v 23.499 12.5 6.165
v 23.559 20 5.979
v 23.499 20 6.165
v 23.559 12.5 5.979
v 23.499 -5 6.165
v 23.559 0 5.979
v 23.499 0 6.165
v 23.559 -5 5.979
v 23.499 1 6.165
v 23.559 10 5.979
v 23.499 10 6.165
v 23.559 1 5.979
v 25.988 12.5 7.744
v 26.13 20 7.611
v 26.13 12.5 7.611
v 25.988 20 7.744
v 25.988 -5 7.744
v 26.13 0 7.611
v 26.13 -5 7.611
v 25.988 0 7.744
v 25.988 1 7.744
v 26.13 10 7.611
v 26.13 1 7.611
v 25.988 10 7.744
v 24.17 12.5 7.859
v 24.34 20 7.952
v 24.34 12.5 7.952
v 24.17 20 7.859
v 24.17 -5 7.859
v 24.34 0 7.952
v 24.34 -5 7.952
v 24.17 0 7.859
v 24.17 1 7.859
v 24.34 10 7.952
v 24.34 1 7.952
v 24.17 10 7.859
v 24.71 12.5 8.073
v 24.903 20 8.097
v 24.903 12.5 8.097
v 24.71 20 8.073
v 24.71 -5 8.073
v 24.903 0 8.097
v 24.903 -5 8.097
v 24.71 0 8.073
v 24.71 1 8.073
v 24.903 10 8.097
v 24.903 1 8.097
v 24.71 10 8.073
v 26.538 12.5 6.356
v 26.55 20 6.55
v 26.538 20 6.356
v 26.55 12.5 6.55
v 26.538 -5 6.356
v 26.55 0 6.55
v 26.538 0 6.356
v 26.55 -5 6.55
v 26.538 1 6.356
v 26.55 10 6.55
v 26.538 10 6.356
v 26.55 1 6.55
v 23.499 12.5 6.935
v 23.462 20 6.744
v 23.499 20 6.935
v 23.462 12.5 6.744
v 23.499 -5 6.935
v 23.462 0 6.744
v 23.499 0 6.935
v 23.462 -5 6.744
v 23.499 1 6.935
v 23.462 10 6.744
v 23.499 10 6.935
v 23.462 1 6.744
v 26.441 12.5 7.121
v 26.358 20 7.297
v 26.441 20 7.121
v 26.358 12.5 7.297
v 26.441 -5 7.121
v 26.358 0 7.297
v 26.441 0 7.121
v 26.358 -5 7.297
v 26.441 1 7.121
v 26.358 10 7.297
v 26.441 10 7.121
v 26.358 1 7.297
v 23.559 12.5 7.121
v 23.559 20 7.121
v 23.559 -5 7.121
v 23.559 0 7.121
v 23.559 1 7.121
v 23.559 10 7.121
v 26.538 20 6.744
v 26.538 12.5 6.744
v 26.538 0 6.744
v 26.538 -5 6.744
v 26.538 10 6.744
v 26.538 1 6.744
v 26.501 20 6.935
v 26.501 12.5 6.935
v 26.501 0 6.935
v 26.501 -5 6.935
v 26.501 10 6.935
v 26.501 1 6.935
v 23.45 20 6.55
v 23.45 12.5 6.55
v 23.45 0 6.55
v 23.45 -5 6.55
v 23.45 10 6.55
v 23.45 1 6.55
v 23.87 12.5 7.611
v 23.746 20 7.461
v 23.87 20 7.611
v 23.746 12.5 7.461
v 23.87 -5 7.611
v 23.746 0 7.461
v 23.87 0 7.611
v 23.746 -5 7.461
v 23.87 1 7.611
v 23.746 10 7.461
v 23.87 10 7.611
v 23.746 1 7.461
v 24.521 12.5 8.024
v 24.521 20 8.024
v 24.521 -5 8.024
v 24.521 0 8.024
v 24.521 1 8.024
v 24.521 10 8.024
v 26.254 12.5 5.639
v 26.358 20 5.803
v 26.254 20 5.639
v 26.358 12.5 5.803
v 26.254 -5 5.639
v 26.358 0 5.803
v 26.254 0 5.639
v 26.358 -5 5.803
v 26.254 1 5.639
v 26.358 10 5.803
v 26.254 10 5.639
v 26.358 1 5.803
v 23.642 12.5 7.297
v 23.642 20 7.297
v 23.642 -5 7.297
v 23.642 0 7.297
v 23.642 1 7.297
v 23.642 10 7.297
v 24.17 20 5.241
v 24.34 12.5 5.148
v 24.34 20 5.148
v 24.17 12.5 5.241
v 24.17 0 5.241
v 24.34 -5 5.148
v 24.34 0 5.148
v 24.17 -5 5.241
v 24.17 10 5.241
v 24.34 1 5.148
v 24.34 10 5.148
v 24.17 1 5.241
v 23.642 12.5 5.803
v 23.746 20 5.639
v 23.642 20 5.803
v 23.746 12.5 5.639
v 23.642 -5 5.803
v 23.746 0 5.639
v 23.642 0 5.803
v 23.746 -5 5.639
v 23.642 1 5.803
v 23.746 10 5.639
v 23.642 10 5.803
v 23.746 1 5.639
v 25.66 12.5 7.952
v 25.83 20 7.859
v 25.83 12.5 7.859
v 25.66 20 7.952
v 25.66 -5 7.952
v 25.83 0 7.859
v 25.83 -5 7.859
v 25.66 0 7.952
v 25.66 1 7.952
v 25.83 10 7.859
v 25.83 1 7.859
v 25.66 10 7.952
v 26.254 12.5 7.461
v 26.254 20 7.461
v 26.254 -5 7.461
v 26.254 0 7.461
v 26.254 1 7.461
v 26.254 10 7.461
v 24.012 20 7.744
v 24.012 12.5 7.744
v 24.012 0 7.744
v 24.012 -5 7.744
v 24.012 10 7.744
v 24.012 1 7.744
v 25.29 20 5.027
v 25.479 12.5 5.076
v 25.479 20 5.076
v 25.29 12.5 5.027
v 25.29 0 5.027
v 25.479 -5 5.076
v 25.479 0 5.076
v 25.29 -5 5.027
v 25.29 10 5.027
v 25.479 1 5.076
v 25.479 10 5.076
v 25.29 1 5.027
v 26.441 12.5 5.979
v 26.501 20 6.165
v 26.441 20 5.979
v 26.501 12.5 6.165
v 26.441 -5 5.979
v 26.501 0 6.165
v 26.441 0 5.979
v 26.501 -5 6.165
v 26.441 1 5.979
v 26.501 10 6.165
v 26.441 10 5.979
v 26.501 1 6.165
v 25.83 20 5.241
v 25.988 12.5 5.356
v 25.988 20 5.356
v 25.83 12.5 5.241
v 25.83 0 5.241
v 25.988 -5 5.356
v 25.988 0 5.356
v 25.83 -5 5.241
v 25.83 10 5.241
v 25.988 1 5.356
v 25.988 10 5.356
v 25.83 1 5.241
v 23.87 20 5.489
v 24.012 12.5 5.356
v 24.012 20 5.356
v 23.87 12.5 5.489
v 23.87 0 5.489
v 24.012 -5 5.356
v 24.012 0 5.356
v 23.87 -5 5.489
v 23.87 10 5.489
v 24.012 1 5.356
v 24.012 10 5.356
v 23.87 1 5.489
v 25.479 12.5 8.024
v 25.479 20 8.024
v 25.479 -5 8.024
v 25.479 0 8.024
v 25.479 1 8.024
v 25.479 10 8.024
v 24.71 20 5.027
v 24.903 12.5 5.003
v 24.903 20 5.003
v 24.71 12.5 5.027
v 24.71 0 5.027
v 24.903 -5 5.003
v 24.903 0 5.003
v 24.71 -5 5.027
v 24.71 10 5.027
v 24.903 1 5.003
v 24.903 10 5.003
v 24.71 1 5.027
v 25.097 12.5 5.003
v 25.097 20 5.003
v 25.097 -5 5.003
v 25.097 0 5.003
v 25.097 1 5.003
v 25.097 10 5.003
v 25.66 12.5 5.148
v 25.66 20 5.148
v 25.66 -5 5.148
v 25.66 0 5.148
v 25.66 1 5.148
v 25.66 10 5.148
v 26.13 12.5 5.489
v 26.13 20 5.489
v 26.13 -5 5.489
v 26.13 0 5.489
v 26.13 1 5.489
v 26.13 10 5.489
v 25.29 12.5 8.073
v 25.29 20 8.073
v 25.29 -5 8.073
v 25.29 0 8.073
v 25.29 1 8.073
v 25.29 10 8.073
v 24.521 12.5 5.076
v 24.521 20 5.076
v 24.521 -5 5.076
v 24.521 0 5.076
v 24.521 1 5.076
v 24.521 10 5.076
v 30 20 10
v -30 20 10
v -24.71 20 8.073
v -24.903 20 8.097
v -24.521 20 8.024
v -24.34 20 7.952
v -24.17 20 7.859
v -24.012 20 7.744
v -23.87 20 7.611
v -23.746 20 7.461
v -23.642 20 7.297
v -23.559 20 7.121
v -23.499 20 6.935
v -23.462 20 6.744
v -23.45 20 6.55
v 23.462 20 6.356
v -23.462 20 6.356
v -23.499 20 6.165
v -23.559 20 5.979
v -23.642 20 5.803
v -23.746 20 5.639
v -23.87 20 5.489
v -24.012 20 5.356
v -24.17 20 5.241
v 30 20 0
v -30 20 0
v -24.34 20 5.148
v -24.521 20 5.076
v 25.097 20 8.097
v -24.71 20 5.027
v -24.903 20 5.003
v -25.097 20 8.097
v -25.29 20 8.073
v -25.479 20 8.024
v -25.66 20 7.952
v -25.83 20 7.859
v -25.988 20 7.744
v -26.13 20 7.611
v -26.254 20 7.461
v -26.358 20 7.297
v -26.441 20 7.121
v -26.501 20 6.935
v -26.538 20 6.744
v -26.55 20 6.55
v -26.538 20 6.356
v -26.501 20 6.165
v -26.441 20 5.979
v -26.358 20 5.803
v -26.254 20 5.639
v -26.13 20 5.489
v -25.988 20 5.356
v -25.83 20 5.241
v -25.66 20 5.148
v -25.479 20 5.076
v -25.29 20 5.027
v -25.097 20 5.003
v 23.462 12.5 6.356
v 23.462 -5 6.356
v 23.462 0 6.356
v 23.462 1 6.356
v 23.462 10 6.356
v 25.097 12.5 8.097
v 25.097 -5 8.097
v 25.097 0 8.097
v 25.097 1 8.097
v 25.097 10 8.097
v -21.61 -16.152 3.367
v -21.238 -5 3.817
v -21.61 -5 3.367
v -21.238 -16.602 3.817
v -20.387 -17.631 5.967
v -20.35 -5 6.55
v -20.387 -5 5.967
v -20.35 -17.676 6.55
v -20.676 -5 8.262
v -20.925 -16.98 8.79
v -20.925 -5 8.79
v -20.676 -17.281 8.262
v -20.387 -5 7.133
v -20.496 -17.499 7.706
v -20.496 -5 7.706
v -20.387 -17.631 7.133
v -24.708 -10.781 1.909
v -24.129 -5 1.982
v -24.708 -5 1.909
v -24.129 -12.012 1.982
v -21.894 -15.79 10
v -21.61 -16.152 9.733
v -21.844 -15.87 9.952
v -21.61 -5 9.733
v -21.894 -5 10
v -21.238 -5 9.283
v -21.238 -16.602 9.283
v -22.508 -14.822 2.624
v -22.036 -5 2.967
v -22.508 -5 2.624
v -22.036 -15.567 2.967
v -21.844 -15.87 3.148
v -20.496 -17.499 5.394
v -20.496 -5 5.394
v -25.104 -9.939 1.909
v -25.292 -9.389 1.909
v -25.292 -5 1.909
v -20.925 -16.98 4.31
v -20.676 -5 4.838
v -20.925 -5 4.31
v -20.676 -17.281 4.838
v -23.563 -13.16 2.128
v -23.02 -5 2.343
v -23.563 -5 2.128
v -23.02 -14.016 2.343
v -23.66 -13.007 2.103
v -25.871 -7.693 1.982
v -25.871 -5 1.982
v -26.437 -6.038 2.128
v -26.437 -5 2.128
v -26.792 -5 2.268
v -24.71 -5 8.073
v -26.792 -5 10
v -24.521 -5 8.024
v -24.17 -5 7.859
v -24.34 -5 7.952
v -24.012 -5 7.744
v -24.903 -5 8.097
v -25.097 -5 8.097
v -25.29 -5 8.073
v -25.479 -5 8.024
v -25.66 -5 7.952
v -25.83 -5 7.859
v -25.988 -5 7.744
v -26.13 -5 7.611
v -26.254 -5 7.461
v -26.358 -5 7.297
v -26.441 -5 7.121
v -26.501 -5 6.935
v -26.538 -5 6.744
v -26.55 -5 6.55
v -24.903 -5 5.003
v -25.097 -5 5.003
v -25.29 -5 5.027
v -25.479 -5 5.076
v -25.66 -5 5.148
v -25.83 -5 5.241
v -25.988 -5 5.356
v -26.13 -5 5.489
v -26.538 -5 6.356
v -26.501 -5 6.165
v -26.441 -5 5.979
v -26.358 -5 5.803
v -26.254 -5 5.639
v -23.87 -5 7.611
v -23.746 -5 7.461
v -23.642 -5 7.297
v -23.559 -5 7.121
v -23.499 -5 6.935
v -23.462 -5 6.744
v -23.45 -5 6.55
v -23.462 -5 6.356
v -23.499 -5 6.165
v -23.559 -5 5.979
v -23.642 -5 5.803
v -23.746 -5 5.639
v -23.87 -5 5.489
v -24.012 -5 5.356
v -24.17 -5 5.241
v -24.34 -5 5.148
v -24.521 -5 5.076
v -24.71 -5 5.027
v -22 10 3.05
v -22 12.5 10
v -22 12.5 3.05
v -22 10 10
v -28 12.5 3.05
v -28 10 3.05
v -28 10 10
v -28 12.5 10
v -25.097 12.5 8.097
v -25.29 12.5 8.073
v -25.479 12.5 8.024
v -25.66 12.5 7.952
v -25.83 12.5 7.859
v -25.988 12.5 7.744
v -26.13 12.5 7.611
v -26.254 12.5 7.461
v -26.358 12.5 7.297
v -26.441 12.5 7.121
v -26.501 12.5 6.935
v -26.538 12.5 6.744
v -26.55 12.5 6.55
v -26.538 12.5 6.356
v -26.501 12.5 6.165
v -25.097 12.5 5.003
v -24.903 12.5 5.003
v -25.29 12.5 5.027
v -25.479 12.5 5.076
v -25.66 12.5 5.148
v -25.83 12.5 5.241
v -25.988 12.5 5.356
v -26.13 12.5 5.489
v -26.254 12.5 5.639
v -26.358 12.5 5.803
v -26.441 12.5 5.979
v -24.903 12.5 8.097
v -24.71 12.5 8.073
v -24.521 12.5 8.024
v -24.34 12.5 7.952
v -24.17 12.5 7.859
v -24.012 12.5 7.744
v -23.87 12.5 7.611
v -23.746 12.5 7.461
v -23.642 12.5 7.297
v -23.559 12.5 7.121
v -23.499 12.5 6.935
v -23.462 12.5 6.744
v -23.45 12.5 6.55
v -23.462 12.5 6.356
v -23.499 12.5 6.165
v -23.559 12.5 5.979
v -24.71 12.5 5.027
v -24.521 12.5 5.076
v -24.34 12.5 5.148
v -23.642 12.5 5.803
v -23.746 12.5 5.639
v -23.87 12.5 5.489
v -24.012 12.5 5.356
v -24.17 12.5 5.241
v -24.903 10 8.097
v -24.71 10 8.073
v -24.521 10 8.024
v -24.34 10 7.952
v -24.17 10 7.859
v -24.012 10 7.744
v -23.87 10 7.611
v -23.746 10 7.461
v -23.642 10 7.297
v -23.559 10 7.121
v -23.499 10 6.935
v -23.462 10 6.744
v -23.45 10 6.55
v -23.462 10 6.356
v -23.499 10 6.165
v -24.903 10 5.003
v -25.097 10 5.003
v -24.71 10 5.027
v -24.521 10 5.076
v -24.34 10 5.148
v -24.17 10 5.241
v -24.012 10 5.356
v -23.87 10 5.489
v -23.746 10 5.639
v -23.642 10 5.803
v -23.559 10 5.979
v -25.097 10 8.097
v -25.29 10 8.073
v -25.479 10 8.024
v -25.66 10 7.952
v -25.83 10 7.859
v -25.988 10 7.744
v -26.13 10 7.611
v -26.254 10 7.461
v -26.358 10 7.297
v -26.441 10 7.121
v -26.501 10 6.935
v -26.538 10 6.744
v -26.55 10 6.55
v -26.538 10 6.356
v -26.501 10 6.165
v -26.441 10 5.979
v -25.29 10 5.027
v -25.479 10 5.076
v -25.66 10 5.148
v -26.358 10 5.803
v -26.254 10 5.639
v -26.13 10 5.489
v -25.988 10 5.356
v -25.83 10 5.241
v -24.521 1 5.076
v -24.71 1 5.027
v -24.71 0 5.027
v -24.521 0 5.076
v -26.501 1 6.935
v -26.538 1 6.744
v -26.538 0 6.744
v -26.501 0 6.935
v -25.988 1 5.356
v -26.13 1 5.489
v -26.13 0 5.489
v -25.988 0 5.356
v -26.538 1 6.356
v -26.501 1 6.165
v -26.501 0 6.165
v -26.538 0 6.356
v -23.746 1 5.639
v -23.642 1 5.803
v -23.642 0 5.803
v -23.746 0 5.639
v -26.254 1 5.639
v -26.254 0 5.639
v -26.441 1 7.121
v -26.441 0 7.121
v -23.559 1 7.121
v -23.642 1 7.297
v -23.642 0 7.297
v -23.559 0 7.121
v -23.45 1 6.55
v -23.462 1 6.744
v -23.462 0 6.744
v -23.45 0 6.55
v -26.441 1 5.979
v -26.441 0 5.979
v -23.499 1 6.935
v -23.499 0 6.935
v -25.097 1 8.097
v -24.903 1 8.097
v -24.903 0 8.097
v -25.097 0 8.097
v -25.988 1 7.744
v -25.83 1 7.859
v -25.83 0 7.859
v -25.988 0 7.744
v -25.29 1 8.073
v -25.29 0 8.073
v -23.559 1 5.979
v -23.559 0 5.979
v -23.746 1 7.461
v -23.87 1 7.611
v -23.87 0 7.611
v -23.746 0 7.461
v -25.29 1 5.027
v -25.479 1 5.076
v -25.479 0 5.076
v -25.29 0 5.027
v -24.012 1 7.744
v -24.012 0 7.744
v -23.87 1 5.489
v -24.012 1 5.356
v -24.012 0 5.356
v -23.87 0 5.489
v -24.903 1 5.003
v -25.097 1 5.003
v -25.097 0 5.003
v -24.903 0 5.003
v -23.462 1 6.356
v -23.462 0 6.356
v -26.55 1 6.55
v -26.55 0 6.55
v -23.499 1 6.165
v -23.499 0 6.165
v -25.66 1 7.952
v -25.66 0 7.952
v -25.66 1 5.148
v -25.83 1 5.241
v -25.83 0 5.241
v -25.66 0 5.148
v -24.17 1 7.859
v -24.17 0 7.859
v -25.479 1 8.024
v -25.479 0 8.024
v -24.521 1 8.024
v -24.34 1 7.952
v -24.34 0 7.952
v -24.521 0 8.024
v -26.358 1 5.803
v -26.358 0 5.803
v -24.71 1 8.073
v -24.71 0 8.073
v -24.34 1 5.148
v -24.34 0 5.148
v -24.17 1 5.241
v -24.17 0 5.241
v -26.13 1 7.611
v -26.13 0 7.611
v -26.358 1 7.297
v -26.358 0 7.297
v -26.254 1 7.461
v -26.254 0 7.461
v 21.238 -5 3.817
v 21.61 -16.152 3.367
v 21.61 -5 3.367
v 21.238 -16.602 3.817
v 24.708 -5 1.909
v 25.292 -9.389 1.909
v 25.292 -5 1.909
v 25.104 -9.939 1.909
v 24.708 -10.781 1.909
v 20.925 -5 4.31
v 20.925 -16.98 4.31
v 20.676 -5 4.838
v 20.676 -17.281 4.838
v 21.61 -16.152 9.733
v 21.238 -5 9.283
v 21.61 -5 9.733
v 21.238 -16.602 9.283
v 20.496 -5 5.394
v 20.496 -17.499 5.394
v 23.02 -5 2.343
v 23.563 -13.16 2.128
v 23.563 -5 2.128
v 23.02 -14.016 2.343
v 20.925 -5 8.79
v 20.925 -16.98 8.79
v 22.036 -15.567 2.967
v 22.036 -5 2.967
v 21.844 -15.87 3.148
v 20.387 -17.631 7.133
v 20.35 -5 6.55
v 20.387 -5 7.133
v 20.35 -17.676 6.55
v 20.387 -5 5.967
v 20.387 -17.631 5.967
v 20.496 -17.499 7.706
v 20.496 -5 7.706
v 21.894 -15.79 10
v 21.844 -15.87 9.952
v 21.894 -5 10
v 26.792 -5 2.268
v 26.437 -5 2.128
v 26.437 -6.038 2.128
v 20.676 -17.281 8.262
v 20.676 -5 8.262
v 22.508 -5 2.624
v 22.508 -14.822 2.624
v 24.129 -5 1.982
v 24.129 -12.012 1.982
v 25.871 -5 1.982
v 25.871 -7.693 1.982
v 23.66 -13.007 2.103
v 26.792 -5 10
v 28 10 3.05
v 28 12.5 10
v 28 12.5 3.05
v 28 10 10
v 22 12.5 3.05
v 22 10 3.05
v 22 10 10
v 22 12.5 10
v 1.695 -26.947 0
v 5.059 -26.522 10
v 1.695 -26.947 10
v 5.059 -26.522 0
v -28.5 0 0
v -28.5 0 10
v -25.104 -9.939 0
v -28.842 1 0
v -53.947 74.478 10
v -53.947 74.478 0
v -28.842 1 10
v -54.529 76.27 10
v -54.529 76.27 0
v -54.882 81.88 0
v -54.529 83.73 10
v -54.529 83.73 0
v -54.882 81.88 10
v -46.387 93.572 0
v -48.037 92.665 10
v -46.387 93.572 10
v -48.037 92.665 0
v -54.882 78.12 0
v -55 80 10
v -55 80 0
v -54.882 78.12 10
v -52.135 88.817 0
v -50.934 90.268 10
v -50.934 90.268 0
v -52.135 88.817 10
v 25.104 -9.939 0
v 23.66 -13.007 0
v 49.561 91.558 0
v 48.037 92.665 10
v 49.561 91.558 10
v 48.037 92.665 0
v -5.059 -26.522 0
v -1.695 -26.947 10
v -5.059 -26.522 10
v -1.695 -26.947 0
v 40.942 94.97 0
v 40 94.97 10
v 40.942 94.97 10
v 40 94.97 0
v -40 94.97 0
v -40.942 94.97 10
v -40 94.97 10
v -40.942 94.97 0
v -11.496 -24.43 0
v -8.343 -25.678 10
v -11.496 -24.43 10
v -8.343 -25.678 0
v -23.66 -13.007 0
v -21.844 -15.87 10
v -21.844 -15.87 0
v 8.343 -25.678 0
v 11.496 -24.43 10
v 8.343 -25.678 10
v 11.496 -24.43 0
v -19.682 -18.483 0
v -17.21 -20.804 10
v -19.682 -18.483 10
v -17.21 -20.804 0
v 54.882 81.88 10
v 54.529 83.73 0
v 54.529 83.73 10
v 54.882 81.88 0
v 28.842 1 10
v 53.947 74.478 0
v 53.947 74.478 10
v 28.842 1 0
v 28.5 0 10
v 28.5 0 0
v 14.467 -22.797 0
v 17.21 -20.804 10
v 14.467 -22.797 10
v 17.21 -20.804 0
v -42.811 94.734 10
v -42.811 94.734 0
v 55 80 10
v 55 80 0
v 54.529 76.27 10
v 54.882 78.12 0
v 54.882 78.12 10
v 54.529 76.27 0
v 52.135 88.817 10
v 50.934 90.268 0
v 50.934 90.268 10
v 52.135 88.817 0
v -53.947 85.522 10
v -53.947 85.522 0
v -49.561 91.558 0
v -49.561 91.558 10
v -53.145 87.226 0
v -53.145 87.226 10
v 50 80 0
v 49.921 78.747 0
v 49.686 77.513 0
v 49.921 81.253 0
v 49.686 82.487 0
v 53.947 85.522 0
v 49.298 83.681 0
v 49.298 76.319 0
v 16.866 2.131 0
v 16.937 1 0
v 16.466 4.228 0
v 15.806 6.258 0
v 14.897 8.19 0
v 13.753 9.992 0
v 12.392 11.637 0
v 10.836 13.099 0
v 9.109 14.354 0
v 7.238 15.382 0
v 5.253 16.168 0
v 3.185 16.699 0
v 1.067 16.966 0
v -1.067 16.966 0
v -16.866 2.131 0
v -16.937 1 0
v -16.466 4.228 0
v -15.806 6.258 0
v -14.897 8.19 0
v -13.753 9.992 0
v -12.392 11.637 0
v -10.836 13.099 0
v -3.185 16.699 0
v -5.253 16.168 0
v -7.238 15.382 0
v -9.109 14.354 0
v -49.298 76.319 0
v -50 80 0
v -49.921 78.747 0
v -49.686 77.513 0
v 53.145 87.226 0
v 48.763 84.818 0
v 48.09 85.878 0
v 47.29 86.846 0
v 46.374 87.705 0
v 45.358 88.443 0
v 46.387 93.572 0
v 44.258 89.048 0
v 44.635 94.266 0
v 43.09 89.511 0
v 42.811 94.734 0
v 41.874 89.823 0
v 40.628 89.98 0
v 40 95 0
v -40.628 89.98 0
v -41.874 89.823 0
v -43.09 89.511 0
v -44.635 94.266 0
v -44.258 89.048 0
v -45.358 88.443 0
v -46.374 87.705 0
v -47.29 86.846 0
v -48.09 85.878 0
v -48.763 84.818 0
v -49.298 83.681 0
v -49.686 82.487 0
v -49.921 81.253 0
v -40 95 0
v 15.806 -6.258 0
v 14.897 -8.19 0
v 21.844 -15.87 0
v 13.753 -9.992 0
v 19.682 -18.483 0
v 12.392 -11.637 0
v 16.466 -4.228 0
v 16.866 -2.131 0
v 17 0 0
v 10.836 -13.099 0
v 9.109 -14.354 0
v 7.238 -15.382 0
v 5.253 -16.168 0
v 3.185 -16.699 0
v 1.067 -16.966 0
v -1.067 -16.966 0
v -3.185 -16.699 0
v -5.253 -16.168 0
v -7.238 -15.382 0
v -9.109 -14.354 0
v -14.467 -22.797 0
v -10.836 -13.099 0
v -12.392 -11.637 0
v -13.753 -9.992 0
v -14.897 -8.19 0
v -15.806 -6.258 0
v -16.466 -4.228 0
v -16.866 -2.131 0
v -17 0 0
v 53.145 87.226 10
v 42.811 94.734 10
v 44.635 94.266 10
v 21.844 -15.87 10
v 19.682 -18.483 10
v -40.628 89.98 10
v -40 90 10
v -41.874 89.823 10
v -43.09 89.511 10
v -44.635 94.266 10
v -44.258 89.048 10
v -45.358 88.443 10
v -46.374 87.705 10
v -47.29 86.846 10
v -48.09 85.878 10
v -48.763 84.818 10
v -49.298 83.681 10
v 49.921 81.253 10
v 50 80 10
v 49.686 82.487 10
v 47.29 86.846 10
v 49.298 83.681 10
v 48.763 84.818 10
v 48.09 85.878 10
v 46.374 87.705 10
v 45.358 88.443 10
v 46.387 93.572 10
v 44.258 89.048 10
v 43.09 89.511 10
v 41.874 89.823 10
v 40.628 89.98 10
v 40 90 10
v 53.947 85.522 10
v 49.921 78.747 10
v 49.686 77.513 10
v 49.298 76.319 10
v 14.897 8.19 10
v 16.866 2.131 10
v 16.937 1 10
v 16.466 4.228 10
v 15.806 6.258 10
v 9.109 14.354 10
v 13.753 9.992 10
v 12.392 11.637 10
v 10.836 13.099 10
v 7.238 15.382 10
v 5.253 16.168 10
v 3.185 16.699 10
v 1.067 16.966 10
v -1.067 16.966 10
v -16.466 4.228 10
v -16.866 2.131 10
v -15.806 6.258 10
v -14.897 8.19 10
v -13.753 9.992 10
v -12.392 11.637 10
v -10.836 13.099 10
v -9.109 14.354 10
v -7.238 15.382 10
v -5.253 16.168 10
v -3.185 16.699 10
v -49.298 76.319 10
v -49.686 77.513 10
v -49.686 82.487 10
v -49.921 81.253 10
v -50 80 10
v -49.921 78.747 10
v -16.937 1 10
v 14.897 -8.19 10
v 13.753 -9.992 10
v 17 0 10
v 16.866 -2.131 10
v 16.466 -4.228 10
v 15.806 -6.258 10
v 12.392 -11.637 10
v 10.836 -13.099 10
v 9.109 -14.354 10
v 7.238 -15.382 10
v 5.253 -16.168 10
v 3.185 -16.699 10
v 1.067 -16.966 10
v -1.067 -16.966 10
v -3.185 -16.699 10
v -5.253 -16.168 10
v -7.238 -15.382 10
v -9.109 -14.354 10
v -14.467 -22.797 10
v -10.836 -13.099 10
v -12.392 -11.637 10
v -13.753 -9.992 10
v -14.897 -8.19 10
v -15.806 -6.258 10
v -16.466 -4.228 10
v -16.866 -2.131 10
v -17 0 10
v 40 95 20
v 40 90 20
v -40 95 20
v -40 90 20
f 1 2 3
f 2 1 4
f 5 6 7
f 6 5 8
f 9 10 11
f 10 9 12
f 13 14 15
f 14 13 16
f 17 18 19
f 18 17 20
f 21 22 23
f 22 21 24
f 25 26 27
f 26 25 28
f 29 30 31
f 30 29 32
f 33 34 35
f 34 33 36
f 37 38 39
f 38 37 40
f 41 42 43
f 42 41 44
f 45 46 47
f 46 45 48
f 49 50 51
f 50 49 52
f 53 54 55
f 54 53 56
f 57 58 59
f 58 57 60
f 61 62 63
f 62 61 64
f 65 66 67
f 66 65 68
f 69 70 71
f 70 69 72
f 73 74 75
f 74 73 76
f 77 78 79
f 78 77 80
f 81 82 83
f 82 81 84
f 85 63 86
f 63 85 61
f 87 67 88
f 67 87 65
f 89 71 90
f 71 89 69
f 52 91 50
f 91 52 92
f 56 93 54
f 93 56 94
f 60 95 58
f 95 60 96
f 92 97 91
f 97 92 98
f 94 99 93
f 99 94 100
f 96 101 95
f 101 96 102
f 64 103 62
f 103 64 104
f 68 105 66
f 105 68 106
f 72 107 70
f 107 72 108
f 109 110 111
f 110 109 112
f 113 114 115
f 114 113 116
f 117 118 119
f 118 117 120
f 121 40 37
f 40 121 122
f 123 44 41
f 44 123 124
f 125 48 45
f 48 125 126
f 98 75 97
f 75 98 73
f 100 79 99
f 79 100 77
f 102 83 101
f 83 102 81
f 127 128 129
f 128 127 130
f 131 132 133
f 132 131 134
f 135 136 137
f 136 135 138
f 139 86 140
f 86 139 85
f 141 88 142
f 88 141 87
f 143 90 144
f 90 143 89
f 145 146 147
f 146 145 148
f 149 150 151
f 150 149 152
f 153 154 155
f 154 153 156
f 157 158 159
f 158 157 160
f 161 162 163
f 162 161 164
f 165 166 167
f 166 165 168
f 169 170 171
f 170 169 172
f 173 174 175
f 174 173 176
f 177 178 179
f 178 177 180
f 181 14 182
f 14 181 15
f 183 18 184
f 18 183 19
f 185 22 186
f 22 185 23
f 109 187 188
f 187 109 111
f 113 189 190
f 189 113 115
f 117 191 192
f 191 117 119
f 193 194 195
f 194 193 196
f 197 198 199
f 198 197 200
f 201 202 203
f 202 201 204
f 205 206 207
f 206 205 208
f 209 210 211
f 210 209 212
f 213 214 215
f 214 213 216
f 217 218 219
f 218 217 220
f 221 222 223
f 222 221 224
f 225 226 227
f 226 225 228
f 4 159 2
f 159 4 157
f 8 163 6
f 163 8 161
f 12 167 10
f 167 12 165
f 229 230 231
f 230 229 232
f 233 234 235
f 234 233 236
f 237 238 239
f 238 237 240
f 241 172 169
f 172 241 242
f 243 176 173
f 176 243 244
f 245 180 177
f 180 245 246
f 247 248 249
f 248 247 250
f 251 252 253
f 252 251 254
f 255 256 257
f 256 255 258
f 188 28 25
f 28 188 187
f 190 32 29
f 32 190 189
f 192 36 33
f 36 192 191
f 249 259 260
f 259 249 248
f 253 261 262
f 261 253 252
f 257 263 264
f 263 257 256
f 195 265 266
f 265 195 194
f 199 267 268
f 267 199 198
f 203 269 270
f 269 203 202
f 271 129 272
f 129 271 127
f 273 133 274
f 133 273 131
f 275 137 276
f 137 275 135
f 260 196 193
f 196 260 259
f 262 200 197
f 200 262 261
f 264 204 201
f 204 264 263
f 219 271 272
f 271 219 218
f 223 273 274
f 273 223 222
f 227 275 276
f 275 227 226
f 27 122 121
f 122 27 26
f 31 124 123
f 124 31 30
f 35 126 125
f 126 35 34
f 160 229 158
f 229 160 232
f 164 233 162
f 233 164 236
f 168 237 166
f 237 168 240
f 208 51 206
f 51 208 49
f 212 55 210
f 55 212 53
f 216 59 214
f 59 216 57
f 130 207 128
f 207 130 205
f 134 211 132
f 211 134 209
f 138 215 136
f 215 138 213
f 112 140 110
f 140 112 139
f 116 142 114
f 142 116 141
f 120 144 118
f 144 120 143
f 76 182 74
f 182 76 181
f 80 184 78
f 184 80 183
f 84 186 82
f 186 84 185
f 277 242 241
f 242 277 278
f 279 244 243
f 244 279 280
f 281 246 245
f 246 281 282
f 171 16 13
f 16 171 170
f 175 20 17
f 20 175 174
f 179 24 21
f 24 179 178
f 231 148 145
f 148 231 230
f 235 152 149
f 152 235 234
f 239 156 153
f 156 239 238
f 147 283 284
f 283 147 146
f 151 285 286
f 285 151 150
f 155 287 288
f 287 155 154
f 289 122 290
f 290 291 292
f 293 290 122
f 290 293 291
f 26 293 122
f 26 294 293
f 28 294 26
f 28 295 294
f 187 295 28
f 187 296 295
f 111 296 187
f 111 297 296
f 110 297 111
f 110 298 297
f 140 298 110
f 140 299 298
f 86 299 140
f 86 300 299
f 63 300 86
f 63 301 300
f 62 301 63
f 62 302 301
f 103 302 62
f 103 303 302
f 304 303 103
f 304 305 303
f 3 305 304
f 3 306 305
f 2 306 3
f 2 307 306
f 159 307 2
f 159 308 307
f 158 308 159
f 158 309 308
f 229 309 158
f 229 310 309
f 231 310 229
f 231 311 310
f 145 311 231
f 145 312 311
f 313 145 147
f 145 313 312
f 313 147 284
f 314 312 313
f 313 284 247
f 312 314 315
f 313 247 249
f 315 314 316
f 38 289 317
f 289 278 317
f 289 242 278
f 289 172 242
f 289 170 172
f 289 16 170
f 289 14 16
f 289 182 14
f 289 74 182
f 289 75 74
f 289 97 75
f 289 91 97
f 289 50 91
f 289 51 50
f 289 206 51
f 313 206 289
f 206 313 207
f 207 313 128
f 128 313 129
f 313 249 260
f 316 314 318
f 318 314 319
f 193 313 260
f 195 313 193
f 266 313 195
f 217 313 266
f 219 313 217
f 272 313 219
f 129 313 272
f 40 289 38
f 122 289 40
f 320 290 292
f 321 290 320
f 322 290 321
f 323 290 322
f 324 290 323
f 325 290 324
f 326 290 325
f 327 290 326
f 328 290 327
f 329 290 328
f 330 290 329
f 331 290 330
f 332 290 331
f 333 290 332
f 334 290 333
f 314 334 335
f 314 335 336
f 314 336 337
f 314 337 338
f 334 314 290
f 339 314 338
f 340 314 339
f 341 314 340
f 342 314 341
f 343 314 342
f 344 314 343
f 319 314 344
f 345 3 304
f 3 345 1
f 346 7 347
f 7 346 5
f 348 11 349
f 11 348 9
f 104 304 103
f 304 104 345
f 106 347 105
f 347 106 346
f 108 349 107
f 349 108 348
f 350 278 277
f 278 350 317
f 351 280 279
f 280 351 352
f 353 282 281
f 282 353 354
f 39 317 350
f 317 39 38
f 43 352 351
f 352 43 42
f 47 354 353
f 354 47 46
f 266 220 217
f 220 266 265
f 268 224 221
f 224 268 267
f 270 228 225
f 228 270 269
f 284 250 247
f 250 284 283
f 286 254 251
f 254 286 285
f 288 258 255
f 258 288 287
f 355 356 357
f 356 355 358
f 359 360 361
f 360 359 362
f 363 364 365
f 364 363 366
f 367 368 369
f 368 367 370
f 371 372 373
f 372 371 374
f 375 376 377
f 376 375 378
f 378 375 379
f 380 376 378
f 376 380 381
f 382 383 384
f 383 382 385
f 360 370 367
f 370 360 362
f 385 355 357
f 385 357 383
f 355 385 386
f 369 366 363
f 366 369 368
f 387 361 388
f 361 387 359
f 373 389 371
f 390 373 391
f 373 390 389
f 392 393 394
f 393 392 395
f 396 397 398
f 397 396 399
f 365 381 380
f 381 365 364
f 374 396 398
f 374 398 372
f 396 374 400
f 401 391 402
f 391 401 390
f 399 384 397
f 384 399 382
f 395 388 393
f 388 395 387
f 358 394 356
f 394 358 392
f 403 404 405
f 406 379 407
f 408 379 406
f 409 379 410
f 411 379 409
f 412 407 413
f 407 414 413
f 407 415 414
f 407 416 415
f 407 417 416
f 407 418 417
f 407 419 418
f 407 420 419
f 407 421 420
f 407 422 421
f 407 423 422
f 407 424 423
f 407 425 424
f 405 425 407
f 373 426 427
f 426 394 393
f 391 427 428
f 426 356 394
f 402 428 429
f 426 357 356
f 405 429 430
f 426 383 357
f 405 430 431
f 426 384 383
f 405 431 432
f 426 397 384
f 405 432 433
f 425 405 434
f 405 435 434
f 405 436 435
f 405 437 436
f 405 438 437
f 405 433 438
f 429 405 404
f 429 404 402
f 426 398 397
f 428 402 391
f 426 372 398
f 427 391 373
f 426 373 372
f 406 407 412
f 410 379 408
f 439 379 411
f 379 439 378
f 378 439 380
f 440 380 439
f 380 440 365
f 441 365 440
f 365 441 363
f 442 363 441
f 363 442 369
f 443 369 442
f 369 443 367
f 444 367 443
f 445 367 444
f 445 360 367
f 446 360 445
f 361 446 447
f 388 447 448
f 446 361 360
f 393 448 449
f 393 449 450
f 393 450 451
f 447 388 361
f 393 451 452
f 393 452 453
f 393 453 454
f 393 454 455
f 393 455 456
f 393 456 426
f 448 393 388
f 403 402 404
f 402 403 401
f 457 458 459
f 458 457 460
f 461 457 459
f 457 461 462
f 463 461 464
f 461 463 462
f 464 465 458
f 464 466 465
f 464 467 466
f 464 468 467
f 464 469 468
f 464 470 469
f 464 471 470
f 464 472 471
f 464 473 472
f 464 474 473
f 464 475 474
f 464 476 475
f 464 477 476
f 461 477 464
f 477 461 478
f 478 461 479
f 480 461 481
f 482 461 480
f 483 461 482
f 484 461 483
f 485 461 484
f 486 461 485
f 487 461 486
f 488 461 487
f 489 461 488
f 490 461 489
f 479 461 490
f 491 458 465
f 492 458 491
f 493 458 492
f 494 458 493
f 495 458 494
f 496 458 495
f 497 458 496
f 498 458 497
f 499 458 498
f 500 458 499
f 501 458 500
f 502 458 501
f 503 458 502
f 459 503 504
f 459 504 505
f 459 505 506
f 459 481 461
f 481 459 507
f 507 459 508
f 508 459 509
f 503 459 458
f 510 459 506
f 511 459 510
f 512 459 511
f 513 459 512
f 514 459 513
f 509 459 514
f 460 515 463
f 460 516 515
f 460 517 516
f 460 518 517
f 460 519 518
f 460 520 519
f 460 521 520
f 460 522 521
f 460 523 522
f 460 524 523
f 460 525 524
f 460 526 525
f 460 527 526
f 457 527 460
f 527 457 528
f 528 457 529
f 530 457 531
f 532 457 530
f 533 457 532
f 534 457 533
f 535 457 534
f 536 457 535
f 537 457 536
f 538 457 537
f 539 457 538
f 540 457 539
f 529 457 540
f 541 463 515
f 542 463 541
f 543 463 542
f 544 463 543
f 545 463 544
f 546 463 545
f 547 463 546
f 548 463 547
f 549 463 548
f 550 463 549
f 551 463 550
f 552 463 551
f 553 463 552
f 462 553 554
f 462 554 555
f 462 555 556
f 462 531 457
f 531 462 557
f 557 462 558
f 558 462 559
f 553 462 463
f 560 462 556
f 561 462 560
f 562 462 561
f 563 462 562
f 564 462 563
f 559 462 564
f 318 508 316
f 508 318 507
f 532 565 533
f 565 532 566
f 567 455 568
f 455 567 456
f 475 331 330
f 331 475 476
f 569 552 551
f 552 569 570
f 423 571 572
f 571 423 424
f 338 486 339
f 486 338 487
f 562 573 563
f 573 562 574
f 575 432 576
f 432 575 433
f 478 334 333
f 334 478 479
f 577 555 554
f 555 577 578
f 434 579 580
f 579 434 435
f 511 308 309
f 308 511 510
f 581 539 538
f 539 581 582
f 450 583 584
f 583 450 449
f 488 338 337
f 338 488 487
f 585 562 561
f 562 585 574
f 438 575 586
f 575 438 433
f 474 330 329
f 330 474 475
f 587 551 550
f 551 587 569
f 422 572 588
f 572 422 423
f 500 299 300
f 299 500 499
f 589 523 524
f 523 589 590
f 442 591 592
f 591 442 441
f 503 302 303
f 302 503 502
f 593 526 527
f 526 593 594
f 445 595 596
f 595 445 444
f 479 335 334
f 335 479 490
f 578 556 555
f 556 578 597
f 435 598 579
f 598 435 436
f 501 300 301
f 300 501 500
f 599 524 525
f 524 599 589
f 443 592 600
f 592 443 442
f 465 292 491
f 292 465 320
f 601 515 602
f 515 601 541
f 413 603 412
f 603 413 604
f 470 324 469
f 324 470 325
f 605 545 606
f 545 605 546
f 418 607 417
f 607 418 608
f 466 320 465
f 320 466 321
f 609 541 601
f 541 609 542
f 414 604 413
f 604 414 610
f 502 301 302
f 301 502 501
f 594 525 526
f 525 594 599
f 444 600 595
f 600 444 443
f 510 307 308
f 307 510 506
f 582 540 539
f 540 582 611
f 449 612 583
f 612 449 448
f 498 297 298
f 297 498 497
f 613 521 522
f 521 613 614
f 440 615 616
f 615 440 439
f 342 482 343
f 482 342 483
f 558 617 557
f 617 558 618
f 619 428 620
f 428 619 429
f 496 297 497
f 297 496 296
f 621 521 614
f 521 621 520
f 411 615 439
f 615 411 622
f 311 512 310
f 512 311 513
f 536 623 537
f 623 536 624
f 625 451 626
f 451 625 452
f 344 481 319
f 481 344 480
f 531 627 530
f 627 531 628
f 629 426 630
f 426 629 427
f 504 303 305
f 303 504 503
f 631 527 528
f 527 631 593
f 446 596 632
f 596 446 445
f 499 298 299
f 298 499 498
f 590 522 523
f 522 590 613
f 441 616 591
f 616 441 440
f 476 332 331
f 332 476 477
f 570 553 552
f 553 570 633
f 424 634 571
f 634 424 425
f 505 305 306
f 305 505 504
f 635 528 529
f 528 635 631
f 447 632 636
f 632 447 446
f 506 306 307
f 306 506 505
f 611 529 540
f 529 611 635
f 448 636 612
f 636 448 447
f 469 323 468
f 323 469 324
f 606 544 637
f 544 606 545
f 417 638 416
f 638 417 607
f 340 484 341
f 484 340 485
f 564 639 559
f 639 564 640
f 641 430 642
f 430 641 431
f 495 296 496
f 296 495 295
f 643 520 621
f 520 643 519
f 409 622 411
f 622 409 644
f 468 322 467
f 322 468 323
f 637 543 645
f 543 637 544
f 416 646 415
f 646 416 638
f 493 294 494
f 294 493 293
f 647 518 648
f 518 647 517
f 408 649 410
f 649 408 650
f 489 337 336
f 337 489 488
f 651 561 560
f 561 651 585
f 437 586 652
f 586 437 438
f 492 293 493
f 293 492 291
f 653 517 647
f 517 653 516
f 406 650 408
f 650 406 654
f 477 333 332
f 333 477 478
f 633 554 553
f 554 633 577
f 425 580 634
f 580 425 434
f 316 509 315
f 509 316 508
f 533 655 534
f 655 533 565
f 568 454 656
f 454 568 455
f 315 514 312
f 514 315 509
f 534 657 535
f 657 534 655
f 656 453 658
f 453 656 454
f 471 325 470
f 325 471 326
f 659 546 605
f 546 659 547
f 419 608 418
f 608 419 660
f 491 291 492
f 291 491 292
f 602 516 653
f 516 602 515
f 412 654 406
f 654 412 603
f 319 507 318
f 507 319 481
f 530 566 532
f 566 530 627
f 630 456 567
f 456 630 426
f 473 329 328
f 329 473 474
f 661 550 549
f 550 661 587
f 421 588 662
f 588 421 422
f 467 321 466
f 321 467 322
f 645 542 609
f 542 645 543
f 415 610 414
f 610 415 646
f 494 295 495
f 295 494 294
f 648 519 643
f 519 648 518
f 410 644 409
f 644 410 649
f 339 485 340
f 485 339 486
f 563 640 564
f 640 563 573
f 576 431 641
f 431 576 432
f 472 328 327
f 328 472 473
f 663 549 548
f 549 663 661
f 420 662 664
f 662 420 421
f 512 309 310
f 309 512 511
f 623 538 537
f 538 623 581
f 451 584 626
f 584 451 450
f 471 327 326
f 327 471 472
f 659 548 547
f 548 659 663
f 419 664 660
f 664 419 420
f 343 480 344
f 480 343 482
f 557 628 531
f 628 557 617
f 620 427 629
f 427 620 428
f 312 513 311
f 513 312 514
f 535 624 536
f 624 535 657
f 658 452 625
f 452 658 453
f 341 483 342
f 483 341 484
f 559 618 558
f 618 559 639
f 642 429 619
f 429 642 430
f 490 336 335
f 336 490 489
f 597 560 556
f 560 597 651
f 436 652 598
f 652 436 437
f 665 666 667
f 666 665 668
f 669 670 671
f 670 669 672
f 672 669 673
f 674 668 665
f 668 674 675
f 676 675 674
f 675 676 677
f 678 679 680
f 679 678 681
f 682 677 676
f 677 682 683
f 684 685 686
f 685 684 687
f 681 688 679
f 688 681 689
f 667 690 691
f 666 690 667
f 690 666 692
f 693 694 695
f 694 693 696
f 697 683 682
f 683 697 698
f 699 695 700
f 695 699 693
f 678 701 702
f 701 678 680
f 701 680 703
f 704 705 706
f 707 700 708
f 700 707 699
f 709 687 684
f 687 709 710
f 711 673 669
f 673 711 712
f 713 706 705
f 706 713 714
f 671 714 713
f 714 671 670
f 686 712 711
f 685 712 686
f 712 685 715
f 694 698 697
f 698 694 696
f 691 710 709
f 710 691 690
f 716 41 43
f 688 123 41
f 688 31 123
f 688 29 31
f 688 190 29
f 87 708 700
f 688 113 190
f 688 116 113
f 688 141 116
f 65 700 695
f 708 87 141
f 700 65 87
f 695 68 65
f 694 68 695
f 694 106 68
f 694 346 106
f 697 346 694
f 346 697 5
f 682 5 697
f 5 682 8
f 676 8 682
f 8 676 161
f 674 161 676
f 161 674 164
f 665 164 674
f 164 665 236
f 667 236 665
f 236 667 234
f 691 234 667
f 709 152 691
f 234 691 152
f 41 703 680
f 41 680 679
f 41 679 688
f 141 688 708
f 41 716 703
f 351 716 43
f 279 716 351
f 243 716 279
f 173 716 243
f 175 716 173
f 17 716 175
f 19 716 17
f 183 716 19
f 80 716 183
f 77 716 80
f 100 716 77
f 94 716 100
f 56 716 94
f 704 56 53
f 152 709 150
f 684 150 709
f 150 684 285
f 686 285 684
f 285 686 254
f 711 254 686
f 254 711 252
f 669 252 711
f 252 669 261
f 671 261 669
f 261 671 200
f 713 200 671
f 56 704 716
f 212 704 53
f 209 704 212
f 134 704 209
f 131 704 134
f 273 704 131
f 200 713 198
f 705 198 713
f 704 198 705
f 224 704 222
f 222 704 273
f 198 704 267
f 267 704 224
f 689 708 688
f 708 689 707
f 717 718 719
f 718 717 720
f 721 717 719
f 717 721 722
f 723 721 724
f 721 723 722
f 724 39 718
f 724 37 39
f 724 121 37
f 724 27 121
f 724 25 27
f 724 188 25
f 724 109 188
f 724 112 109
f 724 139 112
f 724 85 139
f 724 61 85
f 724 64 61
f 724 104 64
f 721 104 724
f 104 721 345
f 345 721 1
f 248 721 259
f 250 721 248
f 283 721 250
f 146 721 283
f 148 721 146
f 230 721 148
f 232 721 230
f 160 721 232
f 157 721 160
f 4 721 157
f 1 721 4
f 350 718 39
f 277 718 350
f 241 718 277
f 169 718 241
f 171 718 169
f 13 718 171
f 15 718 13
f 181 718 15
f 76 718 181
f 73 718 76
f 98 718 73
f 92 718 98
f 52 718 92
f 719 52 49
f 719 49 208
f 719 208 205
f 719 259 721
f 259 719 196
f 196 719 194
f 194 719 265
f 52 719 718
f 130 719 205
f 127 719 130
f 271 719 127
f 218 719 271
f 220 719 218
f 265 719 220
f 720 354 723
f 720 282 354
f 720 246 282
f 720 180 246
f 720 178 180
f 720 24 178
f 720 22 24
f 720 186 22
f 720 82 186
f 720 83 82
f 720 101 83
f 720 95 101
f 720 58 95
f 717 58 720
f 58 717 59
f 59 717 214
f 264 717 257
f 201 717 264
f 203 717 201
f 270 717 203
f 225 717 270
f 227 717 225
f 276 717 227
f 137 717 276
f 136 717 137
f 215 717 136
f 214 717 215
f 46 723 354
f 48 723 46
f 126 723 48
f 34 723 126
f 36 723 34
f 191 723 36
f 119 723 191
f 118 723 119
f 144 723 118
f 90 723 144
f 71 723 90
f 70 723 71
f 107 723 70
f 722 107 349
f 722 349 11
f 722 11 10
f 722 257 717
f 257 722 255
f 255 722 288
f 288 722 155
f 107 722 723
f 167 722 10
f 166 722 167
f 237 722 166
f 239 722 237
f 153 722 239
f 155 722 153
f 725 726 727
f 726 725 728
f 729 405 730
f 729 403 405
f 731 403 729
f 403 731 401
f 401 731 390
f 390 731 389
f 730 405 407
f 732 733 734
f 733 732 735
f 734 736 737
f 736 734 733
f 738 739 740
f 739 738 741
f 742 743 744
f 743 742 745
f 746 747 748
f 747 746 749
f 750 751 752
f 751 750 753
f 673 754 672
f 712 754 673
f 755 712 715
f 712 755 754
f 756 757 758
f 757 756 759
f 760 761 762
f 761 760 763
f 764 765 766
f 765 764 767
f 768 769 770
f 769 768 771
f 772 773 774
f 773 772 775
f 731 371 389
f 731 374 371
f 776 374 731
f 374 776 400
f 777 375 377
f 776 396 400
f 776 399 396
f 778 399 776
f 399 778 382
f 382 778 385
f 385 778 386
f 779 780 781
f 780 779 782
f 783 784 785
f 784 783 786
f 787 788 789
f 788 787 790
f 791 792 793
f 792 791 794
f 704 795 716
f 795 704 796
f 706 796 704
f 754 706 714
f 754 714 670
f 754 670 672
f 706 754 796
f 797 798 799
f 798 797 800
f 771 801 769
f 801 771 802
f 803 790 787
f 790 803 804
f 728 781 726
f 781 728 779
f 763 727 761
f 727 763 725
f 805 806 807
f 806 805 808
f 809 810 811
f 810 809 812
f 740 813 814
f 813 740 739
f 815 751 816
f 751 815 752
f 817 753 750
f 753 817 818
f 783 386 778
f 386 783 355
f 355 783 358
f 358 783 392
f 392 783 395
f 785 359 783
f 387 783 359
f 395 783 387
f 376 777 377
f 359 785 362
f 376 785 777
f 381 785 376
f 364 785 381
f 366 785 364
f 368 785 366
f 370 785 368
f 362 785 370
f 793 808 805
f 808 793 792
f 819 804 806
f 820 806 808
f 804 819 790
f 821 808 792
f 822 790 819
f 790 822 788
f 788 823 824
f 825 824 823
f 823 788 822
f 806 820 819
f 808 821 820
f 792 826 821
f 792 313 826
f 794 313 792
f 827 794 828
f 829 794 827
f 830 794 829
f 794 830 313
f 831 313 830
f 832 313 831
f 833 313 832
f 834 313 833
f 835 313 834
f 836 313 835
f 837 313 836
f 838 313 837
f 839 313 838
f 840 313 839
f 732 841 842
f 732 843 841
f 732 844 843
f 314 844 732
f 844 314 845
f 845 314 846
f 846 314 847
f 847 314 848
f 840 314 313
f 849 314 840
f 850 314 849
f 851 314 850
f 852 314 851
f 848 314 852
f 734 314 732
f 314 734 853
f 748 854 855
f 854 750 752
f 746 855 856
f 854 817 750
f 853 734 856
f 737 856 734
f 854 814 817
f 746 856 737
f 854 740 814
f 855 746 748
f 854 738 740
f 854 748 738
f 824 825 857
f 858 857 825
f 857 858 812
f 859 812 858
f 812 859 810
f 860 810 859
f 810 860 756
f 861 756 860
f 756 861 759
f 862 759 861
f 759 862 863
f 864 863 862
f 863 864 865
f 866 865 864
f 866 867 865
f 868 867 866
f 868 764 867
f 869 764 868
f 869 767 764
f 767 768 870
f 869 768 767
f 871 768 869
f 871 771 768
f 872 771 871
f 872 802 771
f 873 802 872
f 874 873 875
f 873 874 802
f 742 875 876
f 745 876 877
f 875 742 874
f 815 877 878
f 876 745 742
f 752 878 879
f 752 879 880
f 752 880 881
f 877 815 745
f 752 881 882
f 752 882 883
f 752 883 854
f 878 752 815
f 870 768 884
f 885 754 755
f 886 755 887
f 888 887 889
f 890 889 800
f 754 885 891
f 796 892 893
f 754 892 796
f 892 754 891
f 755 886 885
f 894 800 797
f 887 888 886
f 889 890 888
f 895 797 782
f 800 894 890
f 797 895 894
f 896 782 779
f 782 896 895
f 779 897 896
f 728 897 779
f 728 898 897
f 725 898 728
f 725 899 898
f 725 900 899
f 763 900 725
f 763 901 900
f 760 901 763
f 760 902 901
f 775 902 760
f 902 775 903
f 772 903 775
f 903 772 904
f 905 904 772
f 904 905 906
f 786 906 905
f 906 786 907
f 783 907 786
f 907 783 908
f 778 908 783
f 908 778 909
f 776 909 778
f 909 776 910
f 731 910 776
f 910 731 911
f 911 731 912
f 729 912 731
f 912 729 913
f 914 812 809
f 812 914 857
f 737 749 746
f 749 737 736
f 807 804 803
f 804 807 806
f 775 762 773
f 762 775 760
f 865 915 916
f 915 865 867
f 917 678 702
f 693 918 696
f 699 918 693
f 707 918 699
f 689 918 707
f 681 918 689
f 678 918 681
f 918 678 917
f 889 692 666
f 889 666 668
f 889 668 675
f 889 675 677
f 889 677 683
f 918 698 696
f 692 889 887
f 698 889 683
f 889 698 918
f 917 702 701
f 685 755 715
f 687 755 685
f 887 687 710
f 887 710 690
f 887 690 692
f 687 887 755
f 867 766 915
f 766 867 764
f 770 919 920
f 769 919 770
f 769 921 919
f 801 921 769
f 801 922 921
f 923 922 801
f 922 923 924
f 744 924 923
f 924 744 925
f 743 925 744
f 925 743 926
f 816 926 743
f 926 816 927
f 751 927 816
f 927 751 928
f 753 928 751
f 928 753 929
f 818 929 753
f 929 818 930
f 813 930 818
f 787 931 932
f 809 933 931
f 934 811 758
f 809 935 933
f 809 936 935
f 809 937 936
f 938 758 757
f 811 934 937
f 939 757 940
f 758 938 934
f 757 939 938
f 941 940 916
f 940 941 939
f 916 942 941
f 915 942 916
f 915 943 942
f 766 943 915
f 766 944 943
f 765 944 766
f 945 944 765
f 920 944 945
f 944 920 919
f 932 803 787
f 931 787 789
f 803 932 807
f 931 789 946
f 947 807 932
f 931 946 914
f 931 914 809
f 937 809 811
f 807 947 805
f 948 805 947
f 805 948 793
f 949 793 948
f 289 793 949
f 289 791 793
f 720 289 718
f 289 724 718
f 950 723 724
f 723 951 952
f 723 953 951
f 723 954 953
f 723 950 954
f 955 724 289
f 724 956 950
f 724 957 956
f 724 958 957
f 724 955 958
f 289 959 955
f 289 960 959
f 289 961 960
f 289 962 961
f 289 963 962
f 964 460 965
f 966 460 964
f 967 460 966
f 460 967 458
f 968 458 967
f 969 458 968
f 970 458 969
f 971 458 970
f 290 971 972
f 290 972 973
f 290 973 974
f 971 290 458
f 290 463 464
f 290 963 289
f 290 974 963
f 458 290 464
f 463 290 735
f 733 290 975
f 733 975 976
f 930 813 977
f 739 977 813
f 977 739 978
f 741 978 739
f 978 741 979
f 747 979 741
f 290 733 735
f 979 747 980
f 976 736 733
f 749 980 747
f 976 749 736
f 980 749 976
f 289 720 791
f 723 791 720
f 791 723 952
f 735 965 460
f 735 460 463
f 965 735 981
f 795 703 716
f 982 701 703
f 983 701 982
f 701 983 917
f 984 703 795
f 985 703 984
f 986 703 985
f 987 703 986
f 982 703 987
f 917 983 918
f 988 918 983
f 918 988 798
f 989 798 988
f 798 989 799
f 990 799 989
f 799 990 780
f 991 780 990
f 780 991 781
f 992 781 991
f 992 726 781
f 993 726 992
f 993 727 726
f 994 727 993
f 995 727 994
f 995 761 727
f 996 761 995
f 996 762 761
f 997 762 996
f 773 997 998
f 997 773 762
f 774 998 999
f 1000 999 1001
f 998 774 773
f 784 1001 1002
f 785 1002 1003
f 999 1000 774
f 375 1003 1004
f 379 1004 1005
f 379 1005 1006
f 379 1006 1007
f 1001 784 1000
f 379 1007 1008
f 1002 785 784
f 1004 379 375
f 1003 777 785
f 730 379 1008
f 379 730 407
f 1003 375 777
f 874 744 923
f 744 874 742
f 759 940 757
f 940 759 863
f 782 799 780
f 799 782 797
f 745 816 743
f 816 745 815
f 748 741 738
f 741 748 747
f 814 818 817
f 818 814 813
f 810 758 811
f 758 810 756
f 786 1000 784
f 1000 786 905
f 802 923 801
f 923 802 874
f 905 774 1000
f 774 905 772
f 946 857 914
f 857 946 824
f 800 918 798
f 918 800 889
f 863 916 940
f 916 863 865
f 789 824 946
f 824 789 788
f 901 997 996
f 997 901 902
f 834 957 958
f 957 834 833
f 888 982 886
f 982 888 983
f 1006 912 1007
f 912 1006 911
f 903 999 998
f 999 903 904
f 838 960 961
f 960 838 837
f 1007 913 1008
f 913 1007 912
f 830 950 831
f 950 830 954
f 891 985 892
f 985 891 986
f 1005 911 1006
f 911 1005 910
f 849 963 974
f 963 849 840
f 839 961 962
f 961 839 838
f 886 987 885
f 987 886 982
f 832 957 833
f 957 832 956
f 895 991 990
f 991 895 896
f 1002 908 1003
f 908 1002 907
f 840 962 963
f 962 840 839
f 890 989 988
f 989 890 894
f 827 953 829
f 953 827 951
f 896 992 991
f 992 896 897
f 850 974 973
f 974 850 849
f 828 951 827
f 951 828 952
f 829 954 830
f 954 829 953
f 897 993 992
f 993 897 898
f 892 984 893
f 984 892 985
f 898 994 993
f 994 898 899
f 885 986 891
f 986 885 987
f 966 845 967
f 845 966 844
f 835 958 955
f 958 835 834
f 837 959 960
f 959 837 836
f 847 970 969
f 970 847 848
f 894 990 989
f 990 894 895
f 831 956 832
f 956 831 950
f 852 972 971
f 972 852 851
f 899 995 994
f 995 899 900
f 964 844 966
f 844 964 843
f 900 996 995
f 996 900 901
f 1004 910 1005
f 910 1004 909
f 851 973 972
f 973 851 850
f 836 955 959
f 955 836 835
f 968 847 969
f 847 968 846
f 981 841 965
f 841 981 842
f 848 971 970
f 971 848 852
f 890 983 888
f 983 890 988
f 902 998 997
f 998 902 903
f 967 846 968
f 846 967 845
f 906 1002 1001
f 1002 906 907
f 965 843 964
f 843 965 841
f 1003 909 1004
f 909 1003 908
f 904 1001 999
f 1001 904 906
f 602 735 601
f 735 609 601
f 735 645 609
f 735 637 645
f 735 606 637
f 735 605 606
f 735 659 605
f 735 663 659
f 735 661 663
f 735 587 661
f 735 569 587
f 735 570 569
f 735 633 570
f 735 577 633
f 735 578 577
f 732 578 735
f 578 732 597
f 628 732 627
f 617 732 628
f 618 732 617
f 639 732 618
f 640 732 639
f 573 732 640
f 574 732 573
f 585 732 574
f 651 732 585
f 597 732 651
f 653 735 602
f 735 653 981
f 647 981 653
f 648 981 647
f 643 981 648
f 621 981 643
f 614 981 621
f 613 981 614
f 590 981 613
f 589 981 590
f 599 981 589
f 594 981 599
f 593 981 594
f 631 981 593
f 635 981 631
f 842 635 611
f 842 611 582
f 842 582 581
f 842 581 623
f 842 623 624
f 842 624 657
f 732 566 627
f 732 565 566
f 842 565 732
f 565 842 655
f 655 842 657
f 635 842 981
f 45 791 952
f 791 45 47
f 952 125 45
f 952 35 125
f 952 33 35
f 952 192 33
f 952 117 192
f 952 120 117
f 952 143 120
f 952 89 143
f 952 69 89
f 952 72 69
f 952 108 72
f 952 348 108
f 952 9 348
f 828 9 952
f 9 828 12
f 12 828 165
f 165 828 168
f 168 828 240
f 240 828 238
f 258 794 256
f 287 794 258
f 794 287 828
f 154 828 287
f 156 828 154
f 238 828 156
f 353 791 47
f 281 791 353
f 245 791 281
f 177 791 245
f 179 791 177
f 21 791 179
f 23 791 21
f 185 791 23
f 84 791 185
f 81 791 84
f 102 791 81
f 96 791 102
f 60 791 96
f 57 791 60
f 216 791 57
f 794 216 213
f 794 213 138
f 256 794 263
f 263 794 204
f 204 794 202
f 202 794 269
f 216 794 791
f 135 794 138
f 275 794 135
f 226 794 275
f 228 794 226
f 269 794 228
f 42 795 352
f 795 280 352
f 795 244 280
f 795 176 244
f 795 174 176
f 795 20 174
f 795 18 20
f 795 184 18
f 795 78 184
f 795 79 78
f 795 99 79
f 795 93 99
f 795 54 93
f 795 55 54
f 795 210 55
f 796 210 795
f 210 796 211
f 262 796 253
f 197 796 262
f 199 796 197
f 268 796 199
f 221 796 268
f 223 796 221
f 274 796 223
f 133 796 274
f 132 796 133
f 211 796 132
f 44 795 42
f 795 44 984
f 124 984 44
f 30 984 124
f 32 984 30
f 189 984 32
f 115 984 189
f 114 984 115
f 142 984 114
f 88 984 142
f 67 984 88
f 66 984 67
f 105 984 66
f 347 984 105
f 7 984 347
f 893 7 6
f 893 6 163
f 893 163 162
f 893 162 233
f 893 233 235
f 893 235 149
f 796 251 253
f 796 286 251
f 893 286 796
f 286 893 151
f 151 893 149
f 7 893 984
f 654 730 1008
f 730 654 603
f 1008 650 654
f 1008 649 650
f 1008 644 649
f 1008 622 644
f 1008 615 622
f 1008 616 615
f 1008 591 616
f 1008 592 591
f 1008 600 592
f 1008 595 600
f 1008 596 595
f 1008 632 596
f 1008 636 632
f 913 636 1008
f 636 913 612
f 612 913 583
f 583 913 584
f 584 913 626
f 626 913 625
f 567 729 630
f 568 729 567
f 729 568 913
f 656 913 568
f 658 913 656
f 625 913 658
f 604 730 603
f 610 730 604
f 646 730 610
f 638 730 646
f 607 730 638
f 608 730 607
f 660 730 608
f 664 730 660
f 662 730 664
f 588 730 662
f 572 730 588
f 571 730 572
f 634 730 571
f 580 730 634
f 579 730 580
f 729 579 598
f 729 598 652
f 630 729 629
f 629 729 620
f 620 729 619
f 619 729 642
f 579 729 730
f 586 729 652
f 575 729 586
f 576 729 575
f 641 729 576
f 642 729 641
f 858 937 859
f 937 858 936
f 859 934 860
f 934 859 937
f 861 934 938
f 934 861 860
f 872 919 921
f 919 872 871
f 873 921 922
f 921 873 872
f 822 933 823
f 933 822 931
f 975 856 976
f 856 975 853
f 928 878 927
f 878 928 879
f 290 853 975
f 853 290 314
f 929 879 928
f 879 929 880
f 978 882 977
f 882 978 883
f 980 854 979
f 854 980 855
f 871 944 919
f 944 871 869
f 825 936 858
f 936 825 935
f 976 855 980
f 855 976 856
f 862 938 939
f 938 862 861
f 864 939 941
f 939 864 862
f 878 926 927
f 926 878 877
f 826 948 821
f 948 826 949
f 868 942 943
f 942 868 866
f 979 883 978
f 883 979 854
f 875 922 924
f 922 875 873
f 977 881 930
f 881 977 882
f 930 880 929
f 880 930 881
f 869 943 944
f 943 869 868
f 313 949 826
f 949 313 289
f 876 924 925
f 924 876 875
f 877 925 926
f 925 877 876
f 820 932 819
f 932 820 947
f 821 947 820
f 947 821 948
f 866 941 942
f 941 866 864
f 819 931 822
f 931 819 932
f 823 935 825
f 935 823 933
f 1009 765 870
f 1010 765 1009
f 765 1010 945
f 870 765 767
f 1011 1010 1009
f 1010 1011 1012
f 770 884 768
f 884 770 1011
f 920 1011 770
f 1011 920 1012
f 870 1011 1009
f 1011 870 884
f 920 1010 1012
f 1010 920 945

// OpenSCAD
$fn=50;
D=34;
W=10;
H=10;
m=3.1;

module main() {
    difference() {
        hull() {
            cylinder(H,d=D+W*2);
            for (qq=[-1,1]) {
                translate([qq*40,80,0]) cylinder(H,d=30);
            }
        }
        # cylinder(H,d=D);
        translate([-50,0,0]) cube([100,1,H]);  // slicer
        for (qq=[-1,1]) {
            translate([-25*qq,20,m/2+H/2]) rotate([90,0,0]) cylinder(50,d=m);
            translate([25*qq,-5,m/2+H/2]) rotate([90,0,0]) cylinder(40,d=3*m);
            translate([-6/2+25*qq,10,m/2+H/2-7/2]) cube([6,2.5,H*2]);
        }
        //translate([-36,25,0]) cube([72,30,H]);
        # hull() {
            translate([-30,20,0]) cube([60,1,H]);
            for (qq=[-1,1]) {
                translate([qq*40,80,0]) cylinder(H,d=20);
            }
        }
    }
    translate([-40,90,0]) cube([80,5,H+10]);
}

main();
